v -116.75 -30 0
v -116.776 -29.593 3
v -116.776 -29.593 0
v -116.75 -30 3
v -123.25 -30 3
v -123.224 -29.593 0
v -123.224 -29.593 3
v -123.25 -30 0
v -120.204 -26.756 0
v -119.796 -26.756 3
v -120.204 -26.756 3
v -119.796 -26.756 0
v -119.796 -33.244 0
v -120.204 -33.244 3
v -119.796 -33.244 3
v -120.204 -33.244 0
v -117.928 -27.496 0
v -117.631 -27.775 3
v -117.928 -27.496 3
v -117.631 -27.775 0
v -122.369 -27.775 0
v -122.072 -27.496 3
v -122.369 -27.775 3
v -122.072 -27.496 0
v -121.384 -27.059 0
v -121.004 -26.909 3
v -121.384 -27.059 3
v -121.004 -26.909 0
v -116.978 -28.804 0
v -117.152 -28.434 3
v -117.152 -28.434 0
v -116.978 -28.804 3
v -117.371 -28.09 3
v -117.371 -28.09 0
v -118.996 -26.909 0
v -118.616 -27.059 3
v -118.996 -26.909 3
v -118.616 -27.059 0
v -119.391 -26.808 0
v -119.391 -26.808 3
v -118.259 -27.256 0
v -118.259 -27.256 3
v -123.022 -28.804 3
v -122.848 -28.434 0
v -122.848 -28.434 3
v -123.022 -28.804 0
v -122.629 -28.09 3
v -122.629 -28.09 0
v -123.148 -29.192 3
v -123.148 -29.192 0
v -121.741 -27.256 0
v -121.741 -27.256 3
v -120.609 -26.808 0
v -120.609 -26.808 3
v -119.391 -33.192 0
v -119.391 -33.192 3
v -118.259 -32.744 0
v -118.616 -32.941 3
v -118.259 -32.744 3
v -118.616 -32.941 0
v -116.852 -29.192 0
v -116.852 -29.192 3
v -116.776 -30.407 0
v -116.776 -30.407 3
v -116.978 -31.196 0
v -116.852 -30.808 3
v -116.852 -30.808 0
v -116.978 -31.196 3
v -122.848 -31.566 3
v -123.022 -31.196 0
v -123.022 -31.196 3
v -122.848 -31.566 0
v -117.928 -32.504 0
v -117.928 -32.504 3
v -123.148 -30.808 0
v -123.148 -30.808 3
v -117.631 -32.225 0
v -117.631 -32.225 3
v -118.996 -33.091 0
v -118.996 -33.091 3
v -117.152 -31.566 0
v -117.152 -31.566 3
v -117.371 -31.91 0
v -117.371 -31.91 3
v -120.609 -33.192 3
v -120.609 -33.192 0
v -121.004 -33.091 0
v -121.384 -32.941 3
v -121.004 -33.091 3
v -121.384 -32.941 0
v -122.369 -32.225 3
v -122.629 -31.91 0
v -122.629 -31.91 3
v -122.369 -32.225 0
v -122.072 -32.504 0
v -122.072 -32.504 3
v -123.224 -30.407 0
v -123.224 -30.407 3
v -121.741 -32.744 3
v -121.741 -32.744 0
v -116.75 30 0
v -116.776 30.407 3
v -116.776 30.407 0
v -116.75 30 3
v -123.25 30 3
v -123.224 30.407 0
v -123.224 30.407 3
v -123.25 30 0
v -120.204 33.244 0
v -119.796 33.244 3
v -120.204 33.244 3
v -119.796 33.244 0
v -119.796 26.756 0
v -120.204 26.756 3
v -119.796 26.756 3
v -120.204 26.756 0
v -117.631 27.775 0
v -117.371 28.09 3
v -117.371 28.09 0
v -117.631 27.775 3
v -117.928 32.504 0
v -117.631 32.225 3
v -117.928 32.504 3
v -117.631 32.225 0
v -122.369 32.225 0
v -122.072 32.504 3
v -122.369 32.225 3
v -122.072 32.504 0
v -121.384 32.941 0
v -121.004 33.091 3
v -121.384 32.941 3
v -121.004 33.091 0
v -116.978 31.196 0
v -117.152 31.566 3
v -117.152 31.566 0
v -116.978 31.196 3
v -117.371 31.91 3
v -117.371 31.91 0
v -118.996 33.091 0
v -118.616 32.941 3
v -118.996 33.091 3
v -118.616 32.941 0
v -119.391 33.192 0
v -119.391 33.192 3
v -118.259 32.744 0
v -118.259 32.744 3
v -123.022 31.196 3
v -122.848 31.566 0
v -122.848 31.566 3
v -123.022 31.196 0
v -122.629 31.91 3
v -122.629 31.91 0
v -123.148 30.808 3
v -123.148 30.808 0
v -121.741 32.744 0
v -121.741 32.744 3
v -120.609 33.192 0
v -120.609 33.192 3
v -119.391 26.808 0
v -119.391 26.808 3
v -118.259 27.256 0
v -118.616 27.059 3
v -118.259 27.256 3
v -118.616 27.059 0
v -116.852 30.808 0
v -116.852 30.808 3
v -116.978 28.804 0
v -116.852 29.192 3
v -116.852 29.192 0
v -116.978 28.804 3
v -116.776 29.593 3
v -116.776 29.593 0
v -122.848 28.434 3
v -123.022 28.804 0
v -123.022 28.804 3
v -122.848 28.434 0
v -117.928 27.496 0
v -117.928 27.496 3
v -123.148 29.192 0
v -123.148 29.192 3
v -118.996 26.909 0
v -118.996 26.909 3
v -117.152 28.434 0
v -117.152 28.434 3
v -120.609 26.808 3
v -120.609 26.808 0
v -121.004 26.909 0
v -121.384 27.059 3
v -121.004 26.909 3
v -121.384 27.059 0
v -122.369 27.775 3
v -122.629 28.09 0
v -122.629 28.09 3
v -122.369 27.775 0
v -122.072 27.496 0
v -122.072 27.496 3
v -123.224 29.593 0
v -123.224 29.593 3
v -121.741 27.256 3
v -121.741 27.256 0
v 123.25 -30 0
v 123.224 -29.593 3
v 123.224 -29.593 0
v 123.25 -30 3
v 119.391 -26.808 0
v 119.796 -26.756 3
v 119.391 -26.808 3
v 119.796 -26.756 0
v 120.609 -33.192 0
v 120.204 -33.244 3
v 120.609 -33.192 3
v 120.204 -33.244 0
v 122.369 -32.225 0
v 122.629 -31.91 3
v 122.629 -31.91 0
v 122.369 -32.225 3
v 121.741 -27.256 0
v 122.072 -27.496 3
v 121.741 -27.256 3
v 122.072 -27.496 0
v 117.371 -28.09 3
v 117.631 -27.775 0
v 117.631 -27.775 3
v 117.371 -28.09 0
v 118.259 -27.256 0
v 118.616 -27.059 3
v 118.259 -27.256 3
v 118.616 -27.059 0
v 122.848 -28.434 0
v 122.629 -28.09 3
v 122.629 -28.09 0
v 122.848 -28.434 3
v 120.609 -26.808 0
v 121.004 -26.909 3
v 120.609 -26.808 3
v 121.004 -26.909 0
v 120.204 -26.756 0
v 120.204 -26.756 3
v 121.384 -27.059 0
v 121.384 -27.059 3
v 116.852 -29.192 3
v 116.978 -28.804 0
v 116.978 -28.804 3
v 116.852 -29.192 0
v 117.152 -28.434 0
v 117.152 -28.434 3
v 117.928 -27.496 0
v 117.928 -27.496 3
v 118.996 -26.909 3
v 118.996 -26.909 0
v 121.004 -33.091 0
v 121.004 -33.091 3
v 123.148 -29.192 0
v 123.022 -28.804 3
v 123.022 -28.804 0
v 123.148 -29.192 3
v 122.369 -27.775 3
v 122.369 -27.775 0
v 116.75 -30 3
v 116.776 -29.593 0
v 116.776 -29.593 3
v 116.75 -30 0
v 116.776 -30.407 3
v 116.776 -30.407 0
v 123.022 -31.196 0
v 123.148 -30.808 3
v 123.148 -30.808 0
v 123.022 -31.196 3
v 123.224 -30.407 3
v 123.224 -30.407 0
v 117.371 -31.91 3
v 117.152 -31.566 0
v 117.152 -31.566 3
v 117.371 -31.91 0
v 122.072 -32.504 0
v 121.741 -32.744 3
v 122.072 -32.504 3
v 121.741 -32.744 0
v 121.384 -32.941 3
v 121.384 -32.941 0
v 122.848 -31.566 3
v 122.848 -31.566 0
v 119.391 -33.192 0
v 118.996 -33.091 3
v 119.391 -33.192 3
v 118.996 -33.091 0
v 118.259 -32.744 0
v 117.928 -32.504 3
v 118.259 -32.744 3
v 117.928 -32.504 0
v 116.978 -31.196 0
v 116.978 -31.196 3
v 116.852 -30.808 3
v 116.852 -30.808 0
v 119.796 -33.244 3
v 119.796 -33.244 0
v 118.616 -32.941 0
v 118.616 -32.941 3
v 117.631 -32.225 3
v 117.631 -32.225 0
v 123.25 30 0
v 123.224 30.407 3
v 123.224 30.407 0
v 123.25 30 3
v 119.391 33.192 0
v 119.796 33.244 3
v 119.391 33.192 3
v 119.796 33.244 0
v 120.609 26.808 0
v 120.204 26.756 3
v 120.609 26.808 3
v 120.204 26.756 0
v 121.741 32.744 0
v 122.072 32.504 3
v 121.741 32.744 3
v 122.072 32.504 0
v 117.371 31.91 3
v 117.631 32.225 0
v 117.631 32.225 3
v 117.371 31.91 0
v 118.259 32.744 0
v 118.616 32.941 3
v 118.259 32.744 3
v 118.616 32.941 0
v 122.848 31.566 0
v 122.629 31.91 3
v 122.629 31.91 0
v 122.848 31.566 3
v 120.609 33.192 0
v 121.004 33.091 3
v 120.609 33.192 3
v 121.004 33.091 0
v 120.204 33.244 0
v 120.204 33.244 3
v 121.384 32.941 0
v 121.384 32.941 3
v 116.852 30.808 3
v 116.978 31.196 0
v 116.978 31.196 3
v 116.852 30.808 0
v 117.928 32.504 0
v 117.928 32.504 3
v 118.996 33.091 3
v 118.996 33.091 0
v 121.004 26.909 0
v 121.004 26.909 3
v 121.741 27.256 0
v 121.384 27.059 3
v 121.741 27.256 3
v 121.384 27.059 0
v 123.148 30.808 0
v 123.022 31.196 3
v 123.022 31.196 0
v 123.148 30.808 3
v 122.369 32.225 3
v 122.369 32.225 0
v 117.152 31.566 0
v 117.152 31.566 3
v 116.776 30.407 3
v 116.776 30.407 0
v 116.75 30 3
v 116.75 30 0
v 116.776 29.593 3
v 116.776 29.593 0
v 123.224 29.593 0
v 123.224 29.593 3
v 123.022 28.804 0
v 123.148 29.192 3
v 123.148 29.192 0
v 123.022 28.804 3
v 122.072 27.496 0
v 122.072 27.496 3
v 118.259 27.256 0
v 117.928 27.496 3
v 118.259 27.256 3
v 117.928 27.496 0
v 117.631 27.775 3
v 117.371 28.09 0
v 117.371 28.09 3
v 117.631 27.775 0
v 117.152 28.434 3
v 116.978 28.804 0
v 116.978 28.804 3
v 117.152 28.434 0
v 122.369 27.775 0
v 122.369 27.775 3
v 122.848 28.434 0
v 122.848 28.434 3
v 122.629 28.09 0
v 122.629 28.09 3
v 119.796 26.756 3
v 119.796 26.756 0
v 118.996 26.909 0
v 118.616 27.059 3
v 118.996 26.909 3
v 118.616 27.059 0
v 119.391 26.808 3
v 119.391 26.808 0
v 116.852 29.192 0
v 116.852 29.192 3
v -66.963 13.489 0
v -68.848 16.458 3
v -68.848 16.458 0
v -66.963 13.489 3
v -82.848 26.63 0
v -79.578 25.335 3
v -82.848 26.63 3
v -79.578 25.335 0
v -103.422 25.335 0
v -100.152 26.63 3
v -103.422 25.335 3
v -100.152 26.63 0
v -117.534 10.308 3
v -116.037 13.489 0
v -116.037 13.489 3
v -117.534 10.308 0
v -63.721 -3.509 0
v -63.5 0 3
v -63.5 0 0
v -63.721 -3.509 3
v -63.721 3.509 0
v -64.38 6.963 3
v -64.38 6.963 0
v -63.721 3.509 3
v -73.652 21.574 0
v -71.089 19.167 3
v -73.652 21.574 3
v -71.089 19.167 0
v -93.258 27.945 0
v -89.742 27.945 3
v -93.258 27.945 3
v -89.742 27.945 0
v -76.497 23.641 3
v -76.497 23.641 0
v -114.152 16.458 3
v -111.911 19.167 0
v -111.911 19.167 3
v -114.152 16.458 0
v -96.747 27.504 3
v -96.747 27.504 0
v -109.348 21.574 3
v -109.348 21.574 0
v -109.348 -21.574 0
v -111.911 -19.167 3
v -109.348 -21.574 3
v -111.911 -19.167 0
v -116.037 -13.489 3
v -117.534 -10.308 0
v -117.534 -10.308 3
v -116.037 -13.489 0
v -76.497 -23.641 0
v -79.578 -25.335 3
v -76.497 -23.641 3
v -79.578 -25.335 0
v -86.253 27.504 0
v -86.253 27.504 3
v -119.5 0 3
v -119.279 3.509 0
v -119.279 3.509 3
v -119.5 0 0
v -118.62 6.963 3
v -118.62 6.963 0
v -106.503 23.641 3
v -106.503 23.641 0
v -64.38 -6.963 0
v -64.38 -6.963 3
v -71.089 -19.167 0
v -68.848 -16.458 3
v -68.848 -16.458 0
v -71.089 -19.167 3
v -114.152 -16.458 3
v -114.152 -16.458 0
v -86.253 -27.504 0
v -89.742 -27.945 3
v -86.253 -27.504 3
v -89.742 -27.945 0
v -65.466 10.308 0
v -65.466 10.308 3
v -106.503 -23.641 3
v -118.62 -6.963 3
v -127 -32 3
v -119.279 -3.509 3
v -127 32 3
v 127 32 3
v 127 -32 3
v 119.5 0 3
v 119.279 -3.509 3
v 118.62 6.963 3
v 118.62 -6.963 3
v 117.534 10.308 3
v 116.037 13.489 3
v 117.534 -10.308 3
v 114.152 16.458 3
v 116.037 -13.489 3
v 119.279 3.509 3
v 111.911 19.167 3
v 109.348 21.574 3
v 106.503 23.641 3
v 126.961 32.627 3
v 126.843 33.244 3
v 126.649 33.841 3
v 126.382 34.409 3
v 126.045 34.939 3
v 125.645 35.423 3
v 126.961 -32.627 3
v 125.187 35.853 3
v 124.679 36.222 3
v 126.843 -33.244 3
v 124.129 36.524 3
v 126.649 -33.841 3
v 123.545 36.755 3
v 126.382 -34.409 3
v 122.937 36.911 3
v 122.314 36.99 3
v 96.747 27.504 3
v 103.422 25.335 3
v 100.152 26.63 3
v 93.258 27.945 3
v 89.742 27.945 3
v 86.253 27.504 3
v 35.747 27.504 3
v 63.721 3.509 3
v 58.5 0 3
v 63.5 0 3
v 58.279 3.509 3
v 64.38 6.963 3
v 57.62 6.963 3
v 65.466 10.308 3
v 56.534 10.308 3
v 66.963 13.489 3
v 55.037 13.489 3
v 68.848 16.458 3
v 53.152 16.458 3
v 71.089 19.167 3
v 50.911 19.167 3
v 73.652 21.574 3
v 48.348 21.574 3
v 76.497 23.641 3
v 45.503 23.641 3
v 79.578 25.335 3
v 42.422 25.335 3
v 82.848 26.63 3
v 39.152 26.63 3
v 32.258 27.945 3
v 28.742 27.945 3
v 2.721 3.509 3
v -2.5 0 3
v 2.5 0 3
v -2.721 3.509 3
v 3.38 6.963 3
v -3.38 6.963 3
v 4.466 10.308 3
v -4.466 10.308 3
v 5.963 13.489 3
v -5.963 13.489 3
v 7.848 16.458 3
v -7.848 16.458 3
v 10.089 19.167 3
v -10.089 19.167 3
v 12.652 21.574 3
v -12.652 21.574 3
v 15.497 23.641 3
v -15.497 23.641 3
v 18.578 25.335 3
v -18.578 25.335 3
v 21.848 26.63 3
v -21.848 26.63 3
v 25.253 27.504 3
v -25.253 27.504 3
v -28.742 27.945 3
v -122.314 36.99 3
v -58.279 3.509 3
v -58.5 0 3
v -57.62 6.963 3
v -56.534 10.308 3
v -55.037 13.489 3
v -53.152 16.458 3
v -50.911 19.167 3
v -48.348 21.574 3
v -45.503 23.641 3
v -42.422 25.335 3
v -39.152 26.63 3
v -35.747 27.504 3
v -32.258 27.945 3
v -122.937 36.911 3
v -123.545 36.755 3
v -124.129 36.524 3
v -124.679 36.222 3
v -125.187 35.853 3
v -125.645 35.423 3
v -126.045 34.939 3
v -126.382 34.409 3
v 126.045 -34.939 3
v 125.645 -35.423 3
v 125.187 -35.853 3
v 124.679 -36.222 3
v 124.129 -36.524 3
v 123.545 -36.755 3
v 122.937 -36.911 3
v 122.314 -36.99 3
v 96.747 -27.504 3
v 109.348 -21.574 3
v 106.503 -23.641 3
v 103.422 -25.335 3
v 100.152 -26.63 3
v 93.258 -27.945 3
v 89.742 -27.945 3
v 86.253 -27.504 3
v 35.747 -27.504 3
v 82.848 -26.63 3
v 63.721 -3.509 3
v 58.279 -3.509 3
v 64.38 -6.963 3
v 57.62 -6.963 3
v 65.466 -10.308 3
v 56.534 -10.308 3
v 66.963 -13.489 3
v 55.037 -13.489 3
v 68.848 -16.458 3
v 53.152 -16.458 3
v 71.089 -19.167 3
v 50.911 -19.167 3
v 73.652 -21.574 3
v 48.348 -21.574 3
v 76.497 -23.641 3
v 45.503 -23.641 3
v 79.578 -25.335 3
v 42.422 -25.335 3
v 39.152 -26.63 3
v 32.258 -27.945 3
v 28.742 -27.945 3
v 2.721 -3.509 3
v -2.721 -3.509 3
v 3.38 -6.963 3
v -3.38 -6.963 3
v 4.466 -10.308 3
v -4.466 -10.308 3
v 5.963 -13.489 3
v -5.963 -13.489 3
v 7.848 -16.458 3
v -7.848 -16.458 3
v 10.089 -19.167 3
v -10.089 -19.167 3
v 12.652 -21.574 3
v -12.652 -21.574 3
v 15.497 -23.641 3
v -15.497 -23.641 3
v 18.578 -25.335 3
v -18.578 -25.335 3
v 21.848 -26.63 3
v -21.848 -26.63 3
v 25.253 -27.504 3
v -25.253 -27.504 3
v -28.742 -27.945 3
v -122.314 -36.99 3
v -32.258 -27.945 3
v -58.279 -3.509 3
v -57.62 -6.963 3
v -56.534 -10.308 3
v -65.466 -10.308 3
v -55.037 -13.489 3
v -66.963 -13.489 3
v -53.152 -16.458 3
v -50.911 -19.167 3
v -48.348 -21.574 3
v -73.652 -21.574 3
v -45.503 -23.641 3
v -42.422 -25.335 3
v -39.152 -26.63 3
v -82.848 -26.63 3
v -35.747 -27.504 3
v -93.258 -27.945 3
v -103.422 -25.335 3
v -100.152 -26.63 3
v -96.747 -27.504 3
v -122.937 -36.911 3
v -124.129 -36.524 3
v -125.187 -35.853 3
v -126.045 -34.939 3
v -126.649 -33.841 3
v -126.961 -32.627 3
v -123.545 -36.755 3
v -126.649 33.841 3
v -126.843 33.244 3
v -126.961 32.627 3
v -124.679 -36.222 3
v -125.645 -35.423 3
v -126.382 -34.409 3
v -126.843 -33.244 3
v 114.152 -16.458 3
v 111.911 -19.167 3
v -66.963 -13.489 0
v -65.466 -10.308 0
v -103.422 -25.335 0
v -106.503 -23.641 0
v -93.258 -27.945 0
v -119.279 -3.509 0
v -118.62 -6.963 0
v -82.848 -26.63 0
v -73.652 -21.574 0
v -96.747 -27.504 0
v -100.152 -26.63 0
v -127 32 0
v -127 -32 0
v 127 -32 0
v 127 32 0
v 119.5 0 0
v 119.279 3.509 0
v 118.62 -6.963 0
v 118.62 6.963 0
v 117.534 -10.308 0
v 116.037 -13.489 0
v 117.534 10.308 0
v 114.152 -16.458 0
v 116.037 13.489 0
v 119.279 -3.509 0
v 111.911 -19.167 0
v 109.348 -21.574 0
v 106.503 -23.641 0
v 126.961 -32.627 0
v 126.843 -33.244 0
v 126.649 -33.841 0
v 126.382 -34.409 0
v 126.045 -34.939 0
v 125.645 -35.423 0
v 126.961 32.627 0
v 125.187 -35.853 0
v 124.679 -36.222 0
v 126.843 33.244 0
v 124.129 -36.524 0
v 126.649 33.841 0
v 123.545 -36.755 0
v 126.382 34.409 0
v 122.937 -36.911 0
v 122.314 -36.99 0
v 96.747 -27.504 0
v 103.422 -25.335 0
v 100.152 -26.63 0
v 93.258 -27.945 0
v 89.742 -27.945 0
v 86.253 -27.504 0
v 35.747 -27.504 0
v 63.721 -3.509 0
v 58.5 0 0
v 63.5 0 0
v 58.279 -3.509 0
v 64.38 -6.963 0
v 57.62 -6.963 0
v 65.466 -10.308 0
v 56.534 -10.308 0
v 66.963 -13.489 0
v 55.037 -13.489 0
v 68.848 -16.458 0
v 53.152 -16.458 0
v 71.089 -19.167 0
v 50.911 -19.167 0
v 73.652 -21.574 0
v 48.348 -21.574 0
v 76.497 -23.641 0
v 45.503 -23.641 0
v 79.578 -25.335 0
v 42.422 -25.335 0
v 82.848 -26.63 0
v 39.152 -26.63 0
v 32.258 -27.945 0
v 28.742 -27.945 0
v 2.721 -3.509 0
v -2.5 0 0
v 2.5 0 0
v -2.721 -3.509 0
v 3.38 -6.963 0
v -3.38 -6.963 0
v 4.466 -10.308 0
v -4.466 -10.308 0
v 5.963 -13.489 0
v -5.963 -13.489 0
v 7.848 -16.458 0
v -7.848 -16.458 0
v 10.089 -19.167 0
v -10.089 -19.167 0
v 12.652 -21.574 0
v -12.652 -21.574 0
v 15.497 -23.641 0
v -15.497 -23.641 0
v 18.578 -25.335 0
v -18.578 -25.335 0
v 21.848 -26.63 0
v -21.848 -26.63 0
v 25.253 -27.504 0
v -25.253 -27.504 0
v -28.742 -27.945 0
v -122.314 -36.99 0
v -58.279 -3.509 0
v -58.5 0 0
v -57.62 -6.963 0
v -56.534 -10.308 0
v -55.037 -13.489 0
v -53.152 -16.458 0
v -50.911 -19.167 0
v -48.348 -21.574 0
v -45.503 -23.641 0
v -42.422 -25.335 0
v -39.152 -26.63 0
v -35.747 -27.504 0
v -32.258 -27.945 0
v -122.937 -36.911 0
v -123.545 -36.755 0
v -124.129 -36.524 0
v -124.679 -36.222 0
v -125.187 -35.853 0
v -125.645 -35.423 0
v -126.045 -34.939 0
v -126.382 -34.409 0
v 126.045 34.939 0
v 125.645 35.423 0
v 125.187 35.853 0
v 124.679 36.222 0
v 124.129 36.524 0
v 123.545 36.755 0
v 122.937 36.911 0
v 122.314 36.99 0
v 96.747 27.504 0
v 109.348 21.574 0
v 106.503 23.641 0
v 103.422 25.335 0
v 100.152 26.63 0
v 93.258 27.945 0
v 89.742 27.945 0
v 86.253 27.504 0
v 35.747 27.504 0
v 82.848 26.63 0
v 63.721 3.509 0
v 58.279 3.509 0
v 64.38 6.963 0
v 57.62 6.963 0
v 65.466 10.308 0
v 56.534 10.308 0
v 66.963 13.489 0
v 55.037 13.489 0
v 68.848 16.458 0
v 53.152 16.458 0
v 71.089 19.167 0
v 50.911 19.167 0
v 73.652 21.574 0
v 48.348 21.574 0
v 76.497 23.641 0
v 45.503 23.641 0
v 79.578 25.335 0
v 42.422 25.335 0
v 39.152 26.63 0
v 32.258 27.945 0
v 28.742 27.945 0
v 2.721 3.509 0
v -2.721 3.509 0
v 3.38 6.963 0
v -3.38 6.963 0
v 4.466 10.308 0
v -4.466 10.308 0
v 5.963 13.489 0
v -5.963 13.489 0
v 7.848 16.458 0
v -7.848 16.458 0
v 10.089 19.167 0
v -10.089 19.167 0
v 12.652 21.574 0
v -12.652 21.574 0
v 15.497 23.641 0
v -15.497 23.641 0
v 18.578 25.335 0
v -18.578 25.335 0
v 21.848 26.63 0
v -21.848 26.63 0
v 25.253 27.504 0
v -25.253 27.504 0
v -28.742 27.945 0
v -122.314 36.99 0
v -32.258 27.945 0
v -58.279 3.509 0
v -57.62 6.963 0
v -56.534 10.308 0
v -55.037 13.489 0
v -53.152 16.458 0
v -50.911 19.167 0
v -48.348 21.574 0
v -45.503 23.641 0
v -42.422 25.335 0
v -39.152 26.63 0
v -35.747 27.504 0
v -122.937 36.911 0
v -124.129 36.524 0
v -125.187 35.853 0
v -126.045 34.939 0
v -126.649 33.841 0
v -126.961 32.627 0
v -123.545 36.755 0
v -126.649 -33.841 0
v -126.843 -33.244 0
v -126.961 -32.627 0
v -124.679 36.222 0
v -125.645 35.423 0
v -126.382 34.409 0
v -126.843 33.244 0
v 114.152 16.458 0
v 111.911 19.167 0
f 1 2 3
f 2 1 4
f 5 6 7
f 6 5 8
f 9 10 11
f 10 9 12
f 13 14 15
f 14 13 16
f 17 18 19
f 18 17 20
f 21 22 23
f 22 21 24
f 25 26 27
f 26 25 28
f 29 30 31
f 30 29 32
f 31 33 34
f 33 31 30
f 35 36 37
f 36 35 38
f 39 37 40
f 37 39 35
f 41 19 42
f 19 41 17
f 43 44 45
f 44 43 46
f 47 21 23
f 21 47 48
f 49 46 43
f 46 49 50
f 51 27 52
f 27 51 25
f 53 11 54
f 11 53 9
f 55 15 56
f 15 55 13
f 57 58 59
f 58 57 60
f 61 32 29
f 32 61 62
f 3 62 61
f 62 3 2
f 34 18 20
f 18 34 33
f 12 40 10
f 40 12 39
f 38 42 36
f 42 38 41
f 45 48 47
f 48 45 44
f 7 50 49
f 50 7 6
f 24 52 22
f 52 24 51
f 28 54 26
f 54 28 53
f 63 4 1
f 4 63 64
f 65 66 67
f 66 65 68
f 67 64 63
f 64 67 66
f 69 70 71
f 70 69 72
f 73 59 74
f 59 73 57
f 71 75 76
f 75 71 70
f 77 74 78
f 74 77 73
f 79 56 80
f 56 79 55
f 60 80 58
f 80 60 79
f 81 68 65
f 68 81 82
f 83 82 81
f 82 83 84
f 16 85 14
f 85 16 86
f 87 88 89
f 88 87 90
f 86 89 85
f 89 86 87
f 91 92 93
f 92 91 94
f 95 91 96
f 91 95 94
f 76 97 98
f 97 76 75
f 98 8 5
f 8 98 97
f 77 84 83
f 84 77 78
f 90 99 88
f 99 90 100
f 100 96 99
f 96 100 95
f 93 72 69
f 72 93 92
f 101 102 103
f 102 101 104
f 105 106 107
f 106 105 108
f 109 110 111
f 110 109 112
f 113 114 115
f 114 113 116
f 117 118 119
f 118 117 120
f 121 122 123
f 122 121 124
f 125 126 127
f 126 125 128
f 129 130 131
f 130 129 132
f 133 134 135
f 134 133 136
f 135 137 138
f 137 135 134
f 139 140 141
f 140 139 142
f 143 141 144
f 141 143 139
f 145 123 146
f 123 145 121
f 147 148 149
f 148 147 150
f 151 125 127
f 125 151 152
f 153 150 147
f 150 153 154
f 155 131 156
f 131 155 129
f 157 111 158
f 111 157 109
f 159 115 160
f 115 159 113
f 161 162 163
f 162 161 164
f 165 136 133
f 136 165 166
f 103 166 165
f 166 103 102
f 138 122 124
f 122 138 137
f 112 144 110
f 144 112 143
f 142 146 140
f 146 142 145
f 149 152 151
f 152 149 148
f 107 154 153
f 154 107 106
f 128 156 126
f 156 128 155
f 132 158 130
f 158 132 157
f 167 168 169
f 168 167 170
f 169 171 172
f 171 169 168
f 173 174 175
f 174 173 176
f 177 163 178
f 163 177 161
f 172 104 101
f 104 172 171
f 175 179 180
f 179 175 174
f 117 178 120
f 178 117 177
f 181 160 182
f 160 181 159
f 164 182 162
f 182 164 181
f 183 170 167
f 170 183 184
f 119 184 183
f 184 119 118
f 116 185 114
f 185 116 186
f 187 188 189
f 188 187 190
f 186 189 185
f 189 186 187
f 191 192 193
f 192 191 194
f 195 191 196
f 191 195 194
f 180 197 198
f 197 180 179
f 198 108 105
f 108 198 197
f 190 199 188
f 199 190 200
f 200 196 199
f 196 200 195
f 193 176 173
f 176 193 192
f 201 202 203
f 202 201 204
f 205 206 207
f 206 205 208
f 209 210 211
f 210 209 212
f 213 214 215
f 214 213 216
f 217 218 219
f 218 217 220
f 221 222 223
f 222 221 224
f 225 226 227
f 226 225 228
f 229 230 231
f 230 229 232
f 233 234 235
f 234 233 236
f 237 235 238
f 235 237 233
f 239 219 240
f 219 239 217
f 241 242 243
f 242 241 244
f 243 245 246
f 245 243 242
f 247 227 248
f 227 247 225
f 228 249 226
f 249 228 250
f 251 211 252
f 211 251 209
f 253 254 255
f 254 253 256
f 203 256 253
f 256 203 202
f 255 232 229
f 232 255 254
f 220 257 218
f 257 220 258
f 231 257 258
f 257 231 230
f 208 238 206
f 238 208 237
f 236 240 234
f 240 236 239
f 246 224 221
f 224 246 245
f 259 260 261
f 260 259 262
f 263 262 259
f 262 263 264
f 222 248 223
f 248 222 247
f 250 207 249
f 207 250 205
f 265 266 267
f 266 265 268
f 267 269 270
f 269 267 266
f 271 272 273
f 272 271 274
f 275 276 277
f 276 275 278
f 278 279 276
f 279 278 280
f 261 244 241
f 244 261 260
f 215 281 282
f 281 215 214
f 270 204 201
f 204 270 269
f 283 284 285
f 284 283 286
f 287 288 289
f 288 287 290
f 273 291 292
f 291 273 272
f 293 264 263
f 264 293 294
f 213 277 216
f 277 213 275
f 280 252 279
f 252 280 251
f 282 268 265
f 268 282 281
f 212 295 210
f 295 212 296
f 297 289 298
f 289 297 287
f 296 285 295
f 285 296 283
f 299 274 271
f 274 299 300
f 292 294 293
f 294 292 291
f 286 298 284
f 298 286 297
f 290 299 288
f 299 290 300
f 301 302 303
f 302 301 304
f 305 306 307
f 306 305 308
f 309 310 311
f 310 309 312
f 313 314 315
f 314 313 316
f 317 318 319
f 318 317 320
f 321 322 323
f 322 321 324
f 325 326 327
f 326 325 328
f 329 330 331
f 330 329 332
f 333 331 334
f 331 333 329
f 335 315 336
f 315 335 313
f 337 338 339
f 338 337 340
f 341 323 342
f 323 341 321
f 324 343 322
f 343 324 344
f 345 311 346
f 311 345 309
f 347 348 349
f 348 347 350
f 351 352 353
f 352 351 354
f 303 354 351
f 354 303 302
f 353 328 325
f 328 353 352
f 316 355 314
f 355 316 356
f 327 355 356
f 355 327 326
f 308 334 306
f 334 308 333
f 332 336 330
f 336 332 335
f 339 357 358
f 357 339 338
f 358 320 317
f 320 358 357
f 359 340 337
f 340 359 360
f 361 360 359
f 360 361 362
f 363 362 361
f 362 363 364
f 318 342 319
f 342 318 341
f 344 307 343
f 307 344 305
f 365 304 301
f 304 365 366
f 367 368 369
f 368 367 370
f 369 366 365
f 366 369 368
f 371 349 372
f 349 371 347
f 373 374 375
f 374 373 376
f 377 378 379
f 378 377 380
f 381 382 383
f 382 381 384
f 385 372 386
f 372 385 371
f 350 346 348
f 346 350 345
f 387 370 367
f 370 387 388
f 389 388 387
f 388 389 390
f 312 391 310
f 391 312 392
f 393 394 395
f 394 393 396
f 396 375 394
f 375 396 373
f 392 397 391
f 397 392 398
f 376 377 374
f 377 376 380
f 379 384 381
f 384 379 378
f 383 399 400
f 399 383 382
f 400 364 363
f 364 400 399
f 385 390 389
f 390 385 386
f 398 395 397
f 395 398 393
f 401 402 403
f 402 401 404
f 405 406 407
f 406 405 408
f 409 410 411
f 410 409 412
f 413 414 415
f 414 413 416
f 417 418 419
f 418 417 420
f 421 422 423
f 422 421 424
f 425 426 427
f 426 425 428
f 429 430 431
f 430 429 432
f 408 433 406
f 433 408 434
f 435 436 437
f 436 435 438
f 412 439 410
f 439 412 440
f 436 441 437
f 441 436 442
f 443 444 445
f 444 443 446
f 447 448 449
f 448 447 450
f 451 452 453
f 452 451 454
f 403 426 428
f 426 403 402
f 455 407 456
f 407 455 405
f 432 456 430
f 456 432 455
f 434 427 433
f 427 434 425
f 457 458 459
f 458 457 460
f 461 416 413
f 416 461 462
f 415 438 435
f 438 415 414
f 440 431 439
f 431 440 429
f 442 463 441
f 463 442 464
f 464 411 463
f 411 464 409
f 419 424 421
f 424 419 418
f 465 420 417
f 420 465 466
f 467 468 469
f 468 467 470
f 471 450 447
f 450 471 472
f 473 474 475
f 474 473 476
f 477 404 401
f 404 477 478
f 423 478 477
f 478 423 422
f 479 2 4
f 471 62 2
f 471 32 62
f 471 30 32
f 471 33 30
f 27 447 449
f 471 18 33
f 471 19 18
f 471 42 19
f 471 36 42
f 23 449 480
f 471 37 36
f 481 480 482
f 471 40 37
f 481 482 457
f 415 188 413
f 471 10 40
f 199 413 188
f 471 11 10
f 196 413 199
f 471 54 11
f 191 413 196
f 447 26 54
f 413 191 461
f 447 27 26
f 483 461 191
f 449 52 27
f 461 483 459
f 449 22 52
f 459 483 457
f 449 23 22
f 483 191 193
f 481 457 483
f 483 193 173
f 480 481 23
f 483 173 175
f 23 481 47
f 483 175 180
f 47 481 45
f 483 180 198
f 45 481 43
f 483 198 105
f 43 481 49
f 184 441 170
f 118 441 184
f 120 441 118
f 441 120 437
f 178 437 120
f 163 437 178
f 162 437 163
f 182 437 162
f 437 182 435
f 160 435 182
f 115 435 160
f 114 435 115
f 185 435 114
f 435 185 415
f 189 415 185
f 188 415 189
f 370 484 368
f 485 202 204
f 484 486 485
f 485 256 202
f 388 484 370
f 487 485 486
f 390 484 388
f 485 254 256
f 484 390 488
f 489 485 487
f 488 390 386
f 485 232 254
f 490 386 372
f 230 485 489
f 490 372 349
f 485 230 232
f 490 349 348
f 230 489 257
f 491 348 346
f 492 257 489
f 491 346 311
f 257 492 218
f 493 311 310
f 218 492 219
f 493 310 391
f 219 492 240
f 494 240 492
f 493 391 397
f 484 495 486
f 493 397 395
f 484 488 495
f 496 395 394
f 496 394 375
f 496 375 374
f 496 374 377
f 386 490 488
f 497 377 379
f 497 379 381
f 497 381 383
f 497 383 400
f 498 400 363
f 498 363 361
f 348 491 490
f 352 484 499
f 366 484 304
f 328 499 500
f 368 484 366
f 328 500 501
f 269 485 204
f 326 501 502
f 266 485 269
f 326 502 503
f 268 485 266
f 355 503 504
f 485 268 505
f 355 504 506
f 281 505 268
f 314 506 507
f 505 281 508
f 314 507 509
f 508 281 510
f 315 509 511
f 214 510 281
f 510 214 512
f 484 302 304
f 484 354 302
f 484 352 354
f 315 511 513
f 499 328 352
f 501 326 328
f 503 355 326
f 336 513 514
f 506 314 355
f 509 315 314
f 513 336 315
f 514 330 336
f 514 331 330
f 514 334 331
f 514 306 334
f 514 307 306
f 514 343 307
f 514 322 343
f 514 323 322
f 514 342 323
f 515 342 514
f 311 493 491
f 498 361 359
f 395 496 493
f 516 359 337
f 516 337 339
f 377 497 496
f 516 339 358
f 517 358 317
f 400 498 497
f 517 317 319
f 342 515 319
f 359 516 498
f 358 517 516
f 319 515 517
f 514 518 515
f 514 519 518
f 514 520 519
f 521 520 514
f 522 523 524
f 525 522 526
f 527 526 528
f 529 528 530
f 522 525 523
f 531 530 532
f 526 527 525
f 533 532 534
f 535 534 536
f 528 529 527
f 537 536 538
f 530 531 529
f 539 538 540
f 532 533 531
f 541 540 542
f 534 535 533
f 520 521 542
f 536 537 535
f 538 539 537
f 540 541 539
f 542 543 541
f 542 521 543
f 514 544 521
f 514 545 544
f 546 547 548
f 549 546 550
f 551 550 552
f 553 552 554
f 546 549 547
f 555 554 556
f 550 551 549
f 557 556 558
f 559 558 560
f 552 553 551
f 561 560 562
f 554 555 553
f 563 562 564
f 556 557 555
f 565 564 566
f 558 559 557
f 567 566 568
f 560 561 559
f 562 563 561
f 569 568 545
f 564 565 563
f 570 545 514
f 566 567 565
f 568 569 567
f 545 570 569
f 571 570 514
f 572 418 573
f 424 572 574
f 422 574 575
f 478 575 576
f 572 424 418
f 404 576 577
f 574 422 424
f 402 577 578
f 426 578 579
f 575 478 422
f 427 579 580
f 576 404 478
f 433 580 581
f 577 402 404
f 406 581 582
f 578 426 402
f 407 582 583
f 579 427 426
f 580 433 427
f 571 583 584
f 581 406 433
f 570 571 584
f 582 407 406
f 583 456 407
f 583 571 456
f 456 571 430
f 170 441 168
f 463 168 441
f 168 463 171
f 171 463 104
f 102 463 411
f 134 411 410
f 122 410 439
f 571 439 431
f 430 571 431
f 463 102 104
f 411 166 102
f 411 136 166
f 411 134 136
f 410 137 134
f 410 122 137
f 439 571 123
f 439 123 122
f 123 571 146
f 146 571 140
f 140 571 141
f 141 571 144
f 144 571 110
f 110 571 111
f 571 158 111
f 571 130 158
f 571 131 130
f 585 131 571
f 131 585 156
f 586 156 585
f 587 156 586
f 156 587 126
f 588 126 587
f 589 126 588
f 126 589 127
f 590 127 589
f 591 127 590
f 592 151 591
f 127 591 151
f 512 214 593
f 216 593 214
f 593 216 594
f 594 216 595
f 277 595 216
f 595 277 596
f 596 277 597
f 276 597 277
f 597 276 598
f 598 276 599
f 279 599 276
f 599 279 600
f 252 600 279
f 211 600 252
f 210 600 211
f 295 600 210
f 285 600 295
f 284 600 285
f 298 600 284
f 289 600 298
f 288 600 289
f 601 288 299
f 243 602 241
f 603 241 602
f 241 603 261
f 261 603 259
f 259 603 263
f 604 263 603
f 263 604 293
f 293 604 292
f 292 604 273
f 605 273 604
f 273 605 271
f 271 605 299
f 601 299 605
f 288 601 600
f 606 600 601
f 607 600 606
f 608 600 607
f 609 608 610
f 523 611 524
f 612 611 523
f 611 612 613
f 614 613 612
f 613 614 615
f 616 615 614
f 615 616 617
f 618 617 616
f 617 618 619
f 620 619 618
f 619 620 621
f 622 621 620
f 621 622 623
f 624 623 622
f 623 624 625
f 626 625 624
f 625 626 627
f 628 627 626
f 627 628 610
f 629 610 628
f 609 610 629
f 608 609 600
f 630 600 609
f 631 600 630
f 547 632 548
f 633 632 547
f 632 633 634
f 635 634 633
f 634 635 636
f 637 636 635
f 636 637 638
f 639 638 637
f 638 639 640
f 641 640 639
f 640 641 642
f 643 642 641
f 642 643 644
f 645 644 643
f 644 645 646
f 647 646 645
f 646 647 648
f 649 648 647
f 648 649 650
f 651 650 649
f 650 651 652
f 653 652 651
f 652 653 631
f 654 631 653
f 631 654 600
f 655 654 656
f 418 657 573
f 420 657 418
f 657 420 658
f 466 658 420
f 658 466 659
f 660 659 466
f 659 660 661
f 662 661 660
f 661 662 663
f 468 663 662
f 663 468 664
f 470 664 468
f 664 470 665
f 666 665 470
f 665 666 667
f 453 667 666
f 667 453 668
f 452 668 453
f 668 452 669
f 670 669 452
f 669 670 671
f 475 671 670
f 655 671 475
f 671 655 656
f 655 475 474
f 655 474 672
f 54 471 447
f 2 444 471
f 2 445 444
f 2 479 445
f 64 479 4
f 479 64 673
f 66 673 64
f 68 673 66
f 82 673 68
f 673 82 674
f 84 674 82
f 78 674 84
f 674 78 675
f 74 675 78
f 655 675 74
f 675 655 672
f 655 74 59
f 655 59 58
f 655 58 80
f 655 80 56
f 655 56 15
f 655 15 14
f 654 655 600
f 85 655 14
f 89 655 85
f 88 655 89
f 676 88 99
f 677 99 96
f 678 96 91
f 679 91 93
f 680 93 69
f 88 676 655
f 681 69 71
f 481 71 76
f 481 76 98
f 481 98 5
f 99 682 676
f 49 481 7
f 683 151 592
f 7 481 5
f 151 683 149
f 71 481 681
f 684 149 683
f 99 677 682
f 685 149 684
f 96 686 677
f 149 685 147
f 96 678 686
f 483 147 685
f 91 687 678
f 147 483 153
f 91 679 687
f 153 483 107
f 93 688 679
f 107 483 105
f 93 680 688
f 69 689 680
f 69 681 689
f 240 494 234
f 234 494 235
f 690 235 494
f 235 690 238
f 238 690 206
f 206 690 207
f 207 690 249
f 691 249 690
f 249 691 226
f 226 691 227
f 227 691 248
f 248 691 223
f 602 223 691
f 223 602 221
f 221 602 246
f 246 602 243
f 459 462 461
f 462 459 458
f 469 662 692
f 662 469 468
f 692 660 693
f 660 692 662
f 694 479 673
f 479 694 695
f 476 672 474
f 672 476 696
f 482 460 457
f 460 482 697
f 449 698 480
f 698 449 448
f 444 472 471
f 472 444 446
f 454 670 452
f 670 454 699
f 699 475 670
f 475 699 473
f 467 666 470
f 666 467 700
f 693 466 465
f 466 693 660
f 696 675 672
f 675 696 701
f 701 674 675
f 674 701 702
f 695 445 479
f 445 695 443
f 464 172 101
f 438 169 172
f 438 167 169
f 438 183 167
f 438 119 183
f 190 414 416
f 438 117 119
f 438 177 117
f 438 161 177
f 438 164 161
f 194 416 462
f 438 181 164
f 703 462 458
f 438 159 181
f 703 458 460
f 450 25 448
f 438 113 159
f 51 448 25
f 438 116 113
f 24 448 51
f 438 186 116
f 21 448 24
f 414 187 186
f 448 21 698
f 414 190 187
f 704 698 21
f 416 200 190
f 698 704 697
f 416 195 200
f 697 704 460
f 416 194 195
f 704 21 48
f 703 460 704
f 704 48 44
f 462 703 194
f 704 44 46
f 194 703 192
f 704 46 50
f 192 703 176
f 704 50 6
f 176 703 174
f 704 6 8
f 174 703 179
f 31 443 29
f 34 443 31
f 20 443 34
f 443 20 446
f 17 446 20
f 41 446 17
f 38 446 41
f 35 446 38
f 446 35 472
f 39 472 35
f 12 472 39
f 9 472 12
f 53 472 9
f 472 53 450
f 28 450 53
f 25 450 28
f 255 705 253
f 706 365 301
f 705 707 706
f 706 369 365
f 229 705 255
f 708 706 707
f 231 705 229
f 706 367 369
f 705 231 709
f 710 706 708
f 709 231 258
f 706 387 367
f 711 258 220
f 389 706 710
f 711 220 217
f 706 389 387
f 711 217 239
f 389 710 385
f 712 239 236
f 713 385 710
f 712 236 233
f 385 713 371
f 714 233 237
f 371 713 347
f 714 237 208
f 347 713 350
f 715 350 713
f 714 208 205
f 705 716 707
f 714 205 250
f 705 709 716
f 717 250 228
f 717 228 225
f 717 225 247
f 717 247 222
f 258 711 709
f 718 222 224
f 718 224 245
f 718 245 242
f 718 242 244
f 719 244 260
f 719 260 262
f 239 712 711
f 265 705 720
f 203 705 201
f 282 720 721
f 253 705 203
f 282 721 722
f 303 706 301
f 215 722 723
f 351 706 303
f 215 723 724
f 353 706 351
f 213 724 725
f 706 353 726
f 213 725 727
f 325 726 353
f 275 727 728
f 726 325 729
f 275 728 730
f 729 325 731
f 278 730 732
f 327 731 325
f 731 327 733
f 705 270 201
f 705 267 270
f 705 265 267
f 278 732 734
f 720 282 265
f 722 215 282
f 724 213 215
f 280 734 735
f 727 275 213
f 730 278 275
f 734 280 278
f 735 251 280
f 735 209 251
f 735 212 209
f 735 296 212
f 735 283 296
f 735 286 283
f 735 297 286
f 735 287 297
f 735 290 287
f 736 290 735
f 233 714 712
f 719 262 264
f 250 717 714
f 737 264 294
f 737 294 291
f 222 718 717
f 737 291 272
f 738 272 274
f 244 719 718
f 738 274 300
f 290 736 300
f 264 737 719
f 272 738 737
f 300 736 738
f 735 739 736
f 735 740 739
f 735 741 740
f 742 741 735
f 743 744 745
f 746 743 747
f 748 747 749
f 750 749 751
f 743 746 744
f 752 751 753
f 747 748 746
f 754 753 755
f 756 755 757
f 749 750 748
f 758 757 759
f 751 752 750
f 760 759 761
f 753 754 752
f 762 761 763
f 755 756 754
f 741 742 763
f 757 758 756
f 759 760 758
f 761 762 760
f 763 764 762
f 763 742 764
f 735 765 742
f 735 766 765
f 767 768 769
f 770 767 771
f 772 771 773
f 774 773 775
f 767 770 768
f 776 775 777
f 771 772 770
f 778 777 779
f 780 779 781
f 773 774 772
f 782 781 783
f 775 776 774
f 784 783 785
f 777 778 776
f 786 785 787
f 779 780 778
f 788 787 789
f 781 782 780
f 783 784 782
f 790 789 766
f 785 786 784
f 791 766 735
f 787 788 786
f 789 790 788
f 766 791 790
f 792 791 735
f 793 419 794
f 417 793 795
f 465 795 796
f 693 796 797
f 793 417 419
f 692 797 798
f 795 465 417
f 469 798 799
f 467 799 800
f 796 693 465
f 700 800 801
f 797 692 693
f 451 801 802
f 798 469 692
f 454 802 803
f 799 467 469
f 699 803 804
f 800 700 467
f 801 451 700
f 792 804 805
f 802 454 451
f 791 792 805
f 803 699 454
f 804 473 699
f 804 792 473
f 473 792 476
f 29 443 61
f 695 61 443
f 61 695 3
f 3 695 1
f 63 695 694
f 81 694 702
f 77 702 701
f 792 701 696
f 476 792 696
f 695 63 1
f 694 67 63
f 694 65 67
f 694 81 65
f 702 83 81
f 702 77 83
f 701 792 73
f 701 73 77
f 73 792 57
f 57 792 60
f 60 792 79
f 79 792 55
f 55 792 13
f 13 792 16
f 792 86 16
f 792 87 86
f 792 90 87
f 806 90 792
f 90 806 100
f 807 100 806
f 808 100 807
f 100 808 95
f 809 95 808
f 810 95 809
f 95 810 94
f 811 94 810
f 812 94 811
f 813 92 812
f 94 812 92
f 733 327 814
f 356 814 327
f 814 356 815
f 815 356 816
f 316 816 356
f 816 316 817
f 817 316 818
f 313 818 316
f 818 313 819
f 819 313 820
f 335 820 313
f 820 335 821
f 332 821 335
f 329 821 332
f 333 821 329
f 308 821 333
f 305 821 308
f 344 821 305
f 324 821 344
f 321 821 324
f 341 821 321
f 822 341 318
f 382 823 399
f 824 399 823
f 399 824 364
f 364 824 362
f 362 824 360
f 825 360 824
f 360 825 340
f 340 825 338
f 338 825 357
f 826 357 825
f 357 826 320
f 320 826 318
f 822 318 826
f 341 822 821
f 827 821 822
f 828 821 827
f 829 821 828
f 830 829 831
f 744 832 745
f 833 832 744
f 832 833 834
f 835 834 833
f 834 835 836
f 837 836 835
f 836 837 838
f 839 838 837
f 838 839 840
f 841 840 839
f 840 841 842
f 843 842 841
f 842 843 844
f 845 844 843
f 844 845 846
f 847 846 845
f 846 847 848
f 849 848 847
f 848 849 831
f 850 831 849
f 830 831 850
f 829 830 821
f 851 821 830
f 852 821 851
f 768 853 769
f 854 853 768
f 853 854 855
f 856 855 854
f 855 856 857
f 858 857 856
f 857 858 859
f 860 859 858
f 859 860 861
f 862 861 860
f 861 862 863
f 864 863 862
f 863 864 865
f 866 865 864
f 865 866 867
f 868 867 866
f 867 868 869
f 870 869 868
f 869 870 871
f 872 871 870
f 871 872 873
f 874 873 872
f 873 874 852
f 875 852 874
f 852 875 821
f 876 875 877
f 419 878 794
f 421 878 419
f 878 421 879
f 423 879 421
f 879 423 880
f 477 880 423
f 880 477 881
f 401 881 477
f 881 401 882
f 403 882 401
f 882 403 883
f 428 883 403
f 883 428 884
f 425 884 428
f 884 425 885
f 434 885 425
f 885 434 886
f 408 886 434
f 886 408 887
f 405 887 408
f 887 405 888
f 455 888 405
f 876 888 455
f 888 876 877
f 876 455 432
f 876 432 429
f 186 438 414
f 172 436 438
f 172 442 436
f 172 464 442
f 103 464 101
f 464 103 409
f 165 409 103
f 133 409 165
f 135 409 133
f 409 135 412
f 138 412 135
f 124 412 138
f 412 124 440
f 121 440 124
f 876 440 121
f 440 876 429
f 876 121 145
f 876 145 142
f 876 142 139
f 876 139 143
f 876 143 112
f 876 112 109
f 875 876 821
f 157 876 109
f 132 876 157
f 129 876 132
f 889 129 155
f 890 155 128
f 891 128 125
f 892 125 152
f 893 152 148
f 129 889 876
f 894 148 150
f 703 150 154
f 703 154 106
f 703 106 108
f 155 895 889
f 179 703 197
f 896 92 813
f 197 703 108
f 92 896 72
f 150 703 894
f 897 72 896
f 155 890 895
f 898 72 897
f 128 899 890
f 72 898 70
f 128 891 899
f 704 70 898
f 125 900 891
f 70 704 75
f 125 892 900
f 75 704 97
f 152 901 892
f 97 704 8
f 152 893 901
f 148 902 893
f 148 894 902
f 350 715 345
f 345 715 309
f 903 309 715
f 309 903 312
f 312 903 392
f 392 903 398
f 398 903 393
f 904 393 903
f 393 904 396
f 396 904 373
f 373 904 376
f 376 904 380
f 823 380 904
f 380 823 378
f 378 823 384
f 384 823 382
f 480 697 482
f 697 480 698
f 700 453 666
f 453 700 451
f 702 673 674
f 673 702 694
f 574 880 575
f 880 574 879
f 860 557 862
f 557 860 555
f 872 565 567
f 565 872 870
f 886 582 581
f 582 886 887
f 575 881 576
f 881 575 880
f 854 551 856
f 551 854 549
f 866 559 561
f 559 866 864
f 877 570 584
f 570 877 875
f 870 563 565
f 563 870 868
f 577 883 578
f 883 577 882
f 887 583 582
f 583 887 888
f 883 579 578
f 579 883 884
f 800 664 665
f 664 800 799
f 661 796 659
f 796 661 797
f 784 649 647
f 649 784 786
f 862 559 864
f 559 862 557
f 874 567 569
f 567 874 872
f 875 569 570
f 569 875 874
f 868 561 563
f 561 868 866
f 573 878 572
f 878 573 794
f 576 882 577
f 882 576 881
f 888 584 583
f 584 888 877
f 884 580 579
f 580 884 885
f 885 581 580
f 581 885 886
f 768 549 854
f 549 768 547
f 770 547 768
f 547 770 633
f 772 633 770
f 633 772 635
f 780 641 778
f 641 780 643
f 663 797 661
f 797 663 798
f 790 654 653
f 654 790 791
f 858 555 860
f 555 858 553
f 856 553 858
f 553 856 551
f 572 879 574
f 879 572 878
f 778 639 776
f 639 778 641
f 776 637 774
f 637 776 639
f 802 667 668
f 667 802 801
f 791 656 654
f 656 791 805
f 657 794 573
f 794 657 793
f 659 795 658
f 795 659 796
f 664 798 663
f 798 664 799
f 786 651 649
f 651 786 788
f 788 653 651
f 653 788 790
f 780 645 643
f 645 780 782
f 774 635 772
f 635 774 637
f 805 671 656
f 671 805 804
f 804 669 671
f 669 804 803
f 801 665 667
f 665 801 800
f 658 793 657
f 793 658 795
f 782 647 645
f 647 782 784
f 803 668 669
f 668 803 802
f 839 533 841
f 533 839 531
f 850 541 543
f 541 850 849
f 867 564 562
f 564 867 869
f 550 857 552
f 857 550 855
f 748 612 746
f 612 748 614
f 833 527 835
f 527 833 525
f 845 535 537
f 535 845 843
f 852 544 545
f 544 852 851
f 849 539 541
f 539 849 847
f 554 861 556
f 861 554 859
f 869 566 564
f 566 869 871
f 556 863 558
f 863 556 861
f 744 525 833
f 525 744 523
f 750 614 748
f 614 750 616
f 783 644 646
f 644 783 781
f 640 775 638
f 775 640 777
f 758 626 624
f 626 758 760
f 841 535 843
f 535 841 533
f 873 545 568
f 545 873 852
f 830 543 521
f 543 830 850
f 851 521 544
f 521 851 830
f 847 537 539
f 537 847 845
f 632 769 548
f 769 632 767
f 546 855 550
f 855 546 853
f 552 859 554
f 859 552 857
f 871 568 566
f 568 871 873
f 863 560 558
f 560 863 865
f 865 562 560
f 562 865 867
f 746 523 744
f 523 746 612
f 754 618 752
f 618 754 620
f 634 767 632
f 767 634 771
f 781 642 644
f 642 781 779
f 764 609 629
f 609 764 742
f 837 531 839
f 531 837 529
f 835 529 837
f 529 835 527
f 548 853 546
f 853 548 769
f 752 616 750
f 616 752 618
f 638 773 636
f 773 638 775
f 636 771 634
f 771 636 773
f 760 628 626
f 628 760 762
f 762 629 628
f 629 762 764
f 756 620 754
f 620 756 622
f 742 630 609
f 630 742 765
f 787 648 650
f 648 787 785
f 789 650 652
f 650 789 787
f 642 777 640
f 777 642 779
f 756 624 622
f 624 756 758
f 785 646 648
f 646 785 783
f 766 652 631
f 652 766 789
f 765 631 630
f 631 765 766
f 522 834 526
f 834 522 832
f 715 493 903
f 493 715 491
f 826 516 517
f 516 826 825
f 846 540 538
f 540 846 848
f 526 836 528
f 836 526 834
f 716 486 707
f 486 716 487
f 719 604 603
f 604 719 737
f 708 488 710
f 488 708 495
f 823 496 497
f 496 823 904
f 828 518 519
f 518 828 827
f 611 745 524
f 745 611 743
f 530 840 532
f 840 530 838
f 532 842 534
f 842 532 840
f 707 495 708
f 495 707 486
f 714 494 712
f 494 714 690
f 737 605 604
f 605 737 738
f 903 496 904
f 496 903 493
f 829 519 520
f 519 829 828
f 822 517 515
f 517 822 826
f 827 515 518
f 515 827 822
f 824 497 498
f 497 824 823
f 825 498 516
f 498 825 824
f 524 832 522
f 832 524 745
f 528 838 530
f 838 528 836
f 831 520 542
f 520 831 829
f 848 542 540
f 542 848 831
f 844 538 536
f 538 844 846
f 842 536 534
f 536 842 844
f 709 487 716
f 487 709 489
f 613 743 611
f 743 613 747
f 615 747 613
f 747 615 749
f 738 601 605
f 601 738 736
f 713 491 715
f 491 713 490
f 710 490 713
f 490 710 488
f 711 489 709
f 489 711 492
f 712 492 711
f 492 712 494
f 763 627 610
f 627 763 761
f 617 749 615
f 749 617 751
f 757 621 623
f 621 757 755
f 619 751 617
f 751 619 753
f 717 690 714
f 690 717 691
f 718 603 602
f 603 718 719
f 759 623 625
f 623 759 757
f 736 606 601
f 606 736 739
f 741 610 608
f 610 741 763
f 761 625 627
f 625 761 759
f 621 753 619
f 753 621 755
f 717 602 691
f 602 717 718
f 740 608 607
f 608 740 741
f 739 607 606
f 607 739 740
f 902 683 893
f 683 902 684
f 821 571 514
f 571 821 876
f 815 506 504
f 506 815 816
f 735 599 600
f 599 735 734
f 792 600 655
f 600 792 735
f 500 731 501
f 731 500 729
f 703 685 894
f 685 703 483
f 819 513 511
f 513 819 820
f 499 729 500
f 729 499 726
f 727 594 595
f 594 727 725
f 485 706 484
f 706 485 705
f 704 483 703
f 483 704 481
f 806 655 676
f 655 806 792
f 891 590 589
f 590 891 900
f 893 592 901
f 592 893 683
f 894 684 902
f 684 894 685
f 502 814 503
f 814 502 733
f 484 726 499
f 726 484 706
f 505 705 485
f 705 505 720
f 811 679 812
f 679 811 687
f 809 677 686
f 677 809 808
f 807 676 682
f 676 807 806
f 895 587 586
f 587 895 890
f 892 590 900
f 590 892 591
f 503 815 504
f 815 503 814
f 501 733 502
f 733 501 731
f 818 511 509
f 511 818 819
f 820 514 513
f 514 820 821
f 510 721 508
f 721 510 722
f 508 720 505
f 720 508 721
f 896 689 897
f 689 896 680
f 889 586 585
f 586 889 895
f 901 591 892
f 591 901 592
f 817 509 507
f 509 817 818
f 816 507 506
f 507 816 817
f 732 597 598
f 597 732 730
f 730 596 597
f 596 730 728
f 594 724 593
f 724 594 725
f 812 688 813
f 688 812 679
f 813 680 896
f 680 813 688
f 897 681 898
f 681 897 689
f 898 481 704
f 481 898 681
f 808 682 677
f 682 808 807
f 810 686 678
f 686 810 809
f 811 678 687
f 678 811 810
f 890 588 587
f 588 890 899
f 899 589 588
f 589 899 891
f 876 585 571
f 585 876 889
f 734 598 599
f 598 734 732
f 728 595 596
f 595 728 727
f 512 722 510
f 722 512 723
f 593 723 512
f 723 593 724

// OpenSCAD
$fn = 50;


difference() {
	union() {
		hull() {
			translate(v = [-122.0000000000, 32.0000000000, 0]) {
				cylinder(h = 3, r = 5);
			}
			translate(v = [122.0000000000, 32.0000000000, 0]) {
				cylinder(h = 3, r = 5);
			}
			translate(v = [-122.0000000000, -32.0000000000, 0]) {
				cylinder(h = 3, r = 5);
			}
			translate(v = [122.0000000000, -32.0000000000, 0]) {
				cylinder(h = 3, r = 5);
			}
		}
	}
	union() {
		#translate(v = [-120.0000000000, -30.0000000000, -100.0000000000]) {
			cylinder(h = 200, r = 3.2500000000);
		}
		#translate(v = [-120.0000000000, 30.0000000000, -100.0000000000]) {
			cylinder(h = 200, r = 3.2500000000);
		}
		#translate(v = [120.0000000000, -30.0000000000, -100.0000000000]) {
			cylinder(h = 200, r = 3.2500000000);
		}
		#translate(v = [120.0000000000, 30.0000000000, -100.0000000000]) {
			cylinder(h = 200, r = 3.2500000000);
		}
		#translate(v = [-91.5000000000, 0, 0]) {
			cylinder(h = 3, r = 28.0000000000);
		}
		#translate(v = [-30.5000000000, 0, 0]) {
			cylinder(h = 3, r = 28.0000000000);
		}
		#translate(v = [30.5000000000, 0, 0]) {
			cylinder(h = 3, r = 28.0000000000);
		}
		#translate(v = [91.5000000000, 0, 0]) {
			cylinder(h = 3, r = 28.0000000000);
		}
	}
}
